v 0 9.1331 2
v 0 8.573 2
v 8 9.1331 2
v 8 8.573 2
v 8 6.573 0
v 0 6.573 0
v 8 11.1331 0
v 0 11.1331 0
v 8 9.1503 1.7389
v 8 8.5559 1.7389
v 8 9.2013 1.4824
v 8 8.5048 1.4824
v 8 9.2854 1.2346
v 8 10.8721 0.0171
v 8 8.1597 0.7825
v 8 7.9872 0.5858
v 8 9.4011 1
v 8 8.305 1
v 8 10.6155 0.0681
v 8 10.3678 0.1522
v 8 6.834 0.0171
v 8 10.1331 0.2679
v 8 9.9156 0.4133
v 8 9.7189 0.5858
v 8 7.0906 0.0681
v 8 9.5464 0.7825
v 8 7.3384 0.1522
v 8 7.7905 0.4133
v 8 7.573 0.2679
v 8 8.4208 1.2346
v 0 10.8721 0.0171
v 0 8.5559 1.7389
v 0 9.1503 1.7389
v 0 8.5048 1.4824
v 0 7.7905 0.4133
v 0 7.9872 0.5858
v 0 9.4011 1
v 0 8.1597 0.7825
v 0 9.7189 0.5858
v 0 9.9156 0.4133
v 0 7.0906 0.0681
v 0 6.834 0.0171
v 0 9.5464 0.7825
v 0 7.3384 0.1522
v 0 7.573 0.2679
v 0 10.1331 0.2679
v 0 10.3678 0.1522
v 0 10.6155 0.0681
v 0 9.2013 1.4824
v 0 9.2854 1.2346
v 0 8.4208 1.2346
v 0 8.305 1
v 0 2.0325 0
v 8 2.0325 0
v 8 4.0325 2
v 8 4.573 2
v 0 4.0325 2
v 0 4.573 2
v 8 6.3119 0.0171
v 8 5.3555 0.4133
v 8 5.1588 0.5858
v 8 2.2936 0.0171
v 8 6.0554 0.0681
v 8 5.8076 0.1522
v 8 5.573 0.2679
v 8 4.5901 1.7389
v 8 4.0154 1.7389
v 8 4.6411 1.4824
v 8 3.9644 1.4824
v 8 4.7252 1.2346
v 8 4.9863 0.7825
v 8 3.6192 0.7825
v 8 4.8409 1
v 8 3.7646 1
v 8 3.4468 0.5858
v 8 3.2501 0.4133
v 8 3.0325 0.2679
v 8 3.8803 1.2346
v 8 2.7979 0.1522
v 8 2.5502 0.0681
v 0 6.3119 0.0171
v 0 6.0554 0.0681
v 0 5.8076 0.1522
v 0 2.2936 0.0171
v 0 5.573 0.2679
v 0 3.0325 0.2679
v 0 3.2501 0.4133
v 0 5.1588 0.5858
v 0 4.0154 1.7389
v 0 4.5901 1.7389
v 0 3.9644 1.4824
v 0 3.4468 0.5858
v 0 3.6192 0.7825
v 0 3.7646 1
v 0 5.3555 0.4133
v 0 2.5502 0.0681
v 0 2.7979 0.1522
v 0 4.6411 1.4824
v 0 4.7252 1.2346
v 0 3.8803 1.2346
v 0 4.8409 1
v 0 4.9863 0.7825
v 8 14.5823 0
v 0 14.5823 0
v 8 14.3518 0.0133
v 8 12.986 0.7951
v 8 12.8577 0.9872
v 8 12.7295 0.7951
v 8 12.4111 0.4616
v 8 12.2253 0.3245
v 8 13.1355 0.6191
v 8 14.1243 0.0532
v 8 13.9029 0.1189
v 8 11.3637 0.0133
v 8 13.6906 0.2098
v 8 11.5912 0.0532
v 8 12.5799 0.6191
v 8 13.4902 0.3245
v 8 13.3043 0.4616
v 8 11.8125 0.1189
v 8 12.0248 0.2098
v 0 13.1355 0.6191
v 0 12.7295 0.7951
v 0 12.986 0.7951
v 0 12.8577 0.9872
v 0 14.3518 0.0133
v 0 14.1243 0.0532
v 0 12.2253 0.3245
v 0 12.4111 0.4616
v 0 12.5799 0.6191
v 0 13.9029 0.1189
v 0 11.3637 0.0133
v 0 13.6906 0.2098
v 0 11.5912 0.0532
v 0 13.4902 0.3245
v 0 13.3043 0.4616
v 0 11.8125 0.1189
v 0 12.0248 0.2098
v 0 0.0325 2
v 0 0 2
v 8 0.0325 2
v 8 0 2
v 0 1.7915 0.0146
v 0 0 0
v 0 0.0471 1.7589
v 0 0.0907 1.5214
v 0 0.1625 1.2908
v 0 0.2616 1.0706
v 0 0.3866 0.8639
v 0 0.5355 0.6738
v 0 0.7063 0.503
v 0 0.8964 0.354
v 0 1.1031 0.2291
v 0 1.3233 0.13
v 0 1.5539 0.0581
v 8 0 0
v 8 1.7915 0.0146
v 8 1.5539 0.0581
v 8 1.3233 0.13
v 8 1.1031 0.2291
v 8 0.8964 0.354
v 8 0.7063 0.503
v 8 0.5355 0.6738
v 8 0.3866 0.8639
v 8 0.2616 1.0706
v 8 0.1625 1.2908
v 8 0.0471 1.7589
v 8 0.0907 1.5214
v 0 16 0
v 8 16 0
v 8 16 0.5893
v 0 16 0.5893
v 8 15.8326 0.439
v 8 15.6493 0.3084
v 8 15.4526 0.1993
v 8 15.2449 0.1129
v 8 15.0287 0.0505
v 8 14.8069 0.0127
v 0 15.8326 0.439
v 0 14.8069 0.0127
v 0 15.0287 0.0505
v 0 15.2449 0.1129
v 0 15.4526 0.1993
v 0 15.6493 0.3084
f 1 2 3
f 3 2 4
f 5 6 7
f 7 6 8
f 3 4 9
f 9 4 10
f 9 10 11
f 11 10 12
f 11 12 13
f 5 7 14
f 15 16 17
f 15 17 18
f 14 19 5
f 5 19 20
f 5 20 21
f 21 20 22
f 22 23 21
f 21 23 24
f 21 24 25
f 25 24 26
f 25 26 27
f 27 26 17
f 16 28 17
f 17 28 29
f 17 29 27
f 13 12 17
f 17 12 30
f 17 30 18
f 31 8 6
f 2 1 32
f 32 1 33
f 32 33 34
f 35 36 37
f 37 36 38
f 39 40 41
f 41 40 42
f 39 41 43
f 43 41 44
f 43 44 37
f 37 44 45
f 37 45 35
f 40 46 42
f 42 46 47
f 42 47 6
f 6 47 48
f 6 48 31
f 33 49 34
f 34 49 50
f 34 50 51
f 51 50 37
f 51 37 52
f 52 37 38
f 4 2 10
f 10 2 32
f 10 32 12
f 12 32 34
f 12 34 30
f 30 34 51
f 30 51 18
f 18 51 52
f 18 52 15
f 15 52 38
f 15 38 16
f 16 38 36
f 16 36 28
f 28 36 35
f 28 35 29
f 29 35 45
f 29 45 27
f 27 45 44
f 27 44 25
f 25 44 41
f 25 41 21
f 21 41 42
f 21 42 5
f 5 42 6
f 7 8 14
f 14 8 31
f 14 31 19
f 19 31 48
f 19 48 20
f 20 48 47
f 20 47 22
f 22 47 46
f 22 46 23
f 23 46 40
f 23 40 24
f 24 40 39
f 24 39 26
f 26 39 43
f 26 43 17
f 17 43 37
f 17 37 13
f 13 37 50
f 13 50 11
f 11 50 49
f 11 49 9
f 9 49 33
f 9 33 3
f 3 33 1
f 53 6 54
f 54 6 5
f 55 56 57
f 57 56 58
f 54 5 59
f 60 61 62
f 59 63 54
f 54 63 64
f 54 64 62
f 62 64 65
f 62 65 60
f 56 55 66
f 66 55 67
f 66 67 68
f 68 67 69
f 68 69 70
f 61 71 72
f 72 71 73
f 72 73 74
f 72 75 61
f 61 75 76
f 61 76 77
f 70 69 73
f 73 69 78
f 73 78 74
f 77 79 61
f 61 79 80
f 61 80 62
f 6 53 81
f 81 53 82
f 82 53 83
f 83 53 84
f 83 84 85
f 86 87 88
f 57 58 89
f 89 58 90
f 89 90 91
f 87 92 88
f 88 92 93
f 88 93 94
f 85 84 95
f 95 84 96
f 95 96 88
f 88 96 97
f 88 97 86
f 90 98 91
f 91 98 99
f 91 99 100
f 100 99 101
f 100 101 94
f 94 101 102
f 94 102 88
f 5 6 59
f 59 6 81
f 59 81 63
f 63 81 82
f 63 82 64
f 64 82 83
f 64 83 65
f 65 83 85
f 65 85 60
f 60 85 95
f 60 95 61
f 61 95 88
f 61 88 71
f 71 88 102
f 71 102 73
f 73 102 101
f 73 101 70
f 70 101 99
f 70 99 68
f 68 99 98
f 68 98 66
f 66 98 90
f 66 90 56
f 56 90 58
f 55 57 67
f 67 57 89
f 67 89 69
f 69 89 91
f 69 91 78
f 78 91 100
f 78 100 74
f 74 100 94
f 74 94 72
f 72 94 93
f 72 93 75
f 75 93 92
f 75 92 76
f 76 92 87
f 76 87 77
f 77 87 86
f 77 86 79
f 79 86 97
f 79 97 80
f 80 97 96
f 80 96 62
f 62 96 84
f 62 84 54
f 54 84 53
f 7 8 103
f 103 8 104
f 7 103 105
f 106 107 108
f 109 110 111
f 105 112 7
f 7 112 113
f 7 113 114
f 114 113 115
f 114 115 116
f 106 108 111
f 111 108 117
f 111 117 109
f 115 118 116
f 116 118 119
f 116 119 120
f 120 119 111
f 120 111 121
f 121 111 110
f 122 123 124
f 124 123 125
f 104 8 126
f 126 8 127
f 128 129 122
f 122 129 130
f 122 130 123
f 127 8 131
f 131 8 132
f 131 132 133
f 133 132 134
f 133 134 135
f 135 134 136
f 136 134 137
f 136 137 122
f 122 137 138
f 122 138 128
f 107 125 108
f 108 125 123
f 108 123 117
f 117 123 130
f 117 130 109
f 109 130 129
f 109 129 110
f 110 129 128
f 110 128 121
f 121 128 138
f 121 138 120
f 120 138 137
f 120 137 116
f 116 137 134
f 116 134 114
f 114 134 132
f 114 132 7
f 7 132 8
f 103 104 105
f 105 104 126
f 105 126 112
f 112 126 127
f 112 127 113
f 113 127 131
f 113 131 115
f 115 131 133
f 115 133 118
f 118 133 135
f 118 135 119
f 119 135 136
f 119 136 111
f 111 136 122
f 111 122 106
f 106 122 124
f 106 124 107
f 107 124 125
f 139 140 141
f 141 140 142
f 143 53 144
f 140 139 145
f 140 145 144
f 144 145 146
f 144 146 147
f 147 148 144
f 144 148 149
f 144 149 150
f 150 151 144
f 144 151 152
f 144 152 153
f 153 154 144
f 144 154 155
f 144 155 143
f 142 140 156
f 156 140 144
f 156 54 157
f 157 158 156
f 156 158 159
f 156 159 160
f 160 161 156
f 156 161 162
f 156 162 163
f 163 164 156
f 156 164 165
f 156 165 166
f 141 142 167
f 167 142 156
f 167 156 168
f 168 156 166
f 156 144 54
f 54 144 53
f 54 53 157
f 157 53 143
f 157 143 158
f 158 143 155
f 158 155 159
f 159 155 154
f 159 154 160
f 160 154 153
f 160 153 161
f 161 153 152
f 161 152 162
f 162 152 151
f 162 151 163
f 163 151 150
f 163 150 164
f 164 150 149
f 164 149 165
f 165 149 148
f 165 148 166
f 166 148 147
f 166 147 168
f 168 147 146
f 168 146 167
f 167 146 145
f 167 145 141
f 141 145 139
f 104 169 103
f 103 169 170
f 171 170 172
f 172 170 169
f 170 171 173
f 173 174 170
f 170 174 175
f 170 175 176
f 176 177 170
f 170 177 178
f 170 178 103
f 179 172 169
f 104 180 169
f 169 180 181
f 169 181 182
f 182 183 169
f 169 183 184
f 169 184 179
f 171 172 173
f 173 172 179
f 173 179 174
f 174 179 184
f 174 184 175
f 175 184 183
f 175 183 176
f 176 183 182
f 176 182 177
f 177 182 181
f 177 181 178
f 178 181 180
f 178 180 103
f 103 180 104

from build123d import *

# Parameters (mm, degrees)
SKETCH_1_W          = 8
SKETCH_1_H          = 16
EXTRUDE_1_DEPTH     = 2
CUT_EXTRUDE_1_DEPTH = 8


with BuildPart() as part:
    # 草图1 → 凸台-拉伸1 (new body)
    with BuildSketch(Plane.XY):
        with Locations((4, 8)):
            Rectangle(SKETCH_1_W, SKETCH_1_H)
    extrude(amount=EXTRUDE_1_DEPTH)

    # 草图3 → 切除-拉伸1 (cut)
    with BuildSketch(Plane.ZY):
        with BuildLine():
            Line((0.58928448, 16), (2, 16))
            Line((2, 16), (2, 9.133143651))
            ThreePointArc((2, 9.133143651), (0.070083762, 10.608335769), (0.987164748, 12.857720338))
            ThreePointArc((0.987164748, 12.857720338), (0.01584276, 14.331059995), (0.58928448, 16))
        make_face()
        with BuildLine():
            Line((2, 4.032540219), (2, 0.032540219))
            ThreePointArc((2, 0.032540219), (0, 2.032540219), (2, 4.032540219))
        make_face()
        with BuildLine():
            Line((2, 8.572993402), (2, 4.572993402))
            ThreePointArc((2, 4.572993402), (0, 6.572993402), (2, 8.572993402))
        make_face()
    extrude(amount=-CUT_EXTRUDE_1_DEPTH, mode=Mode.SUBTRACT)


with BuildPart() as cut_extrude_1_piece_1:
    # of the separate pieces the step leaves, piece 1, a body of its own (cut_extrude_1_pieces)
    add(part.part.solids().sort_by_distance((0, 8.572993402, 2))[0])


with BuildPart() as cut_extrude_1_piece_2:
    # of the separate pieces the step leaves, piece 2, a body of its own (cut_extrude_1_pieces)
    add(part.part.solids().sort_by_distance((0, 4.032540219, 2))[0])


with BuildPart() as cut_extrude_1_piece_3:
    # of the separate pieces the step leaves, piece 3, a body of its own (cut_extrude_1_pieces)
    add(part.part.solids().sort_by_distance((0, 12.857720338, 0.987164748))[0])


with BuildPart() as cut_extrude_1_piece_4:
    # of the separate pieces the step leaves, piece 4, a body of its own (cut_extrude_1_pieces)
    add(part.part.solids().sort_by_distance((0, 0, 0))[0])


with BuildPart() as cut_extrude_1_piece_5:
    # of the separate pieces the step leaves, piece 5, a body of its own (cut_extrude_1_pieces)
    add(part.part.solids().sort_by_distance((0, 16, 0))[0])


solid = Compound([cut_extrude_1_piece_1.part, cut_extrude_1_piece_2.part, cut_extrude_1_piece_3.part, cut_extrude_1_piece_4.part, cut_extrude_1_piece_5.part])
